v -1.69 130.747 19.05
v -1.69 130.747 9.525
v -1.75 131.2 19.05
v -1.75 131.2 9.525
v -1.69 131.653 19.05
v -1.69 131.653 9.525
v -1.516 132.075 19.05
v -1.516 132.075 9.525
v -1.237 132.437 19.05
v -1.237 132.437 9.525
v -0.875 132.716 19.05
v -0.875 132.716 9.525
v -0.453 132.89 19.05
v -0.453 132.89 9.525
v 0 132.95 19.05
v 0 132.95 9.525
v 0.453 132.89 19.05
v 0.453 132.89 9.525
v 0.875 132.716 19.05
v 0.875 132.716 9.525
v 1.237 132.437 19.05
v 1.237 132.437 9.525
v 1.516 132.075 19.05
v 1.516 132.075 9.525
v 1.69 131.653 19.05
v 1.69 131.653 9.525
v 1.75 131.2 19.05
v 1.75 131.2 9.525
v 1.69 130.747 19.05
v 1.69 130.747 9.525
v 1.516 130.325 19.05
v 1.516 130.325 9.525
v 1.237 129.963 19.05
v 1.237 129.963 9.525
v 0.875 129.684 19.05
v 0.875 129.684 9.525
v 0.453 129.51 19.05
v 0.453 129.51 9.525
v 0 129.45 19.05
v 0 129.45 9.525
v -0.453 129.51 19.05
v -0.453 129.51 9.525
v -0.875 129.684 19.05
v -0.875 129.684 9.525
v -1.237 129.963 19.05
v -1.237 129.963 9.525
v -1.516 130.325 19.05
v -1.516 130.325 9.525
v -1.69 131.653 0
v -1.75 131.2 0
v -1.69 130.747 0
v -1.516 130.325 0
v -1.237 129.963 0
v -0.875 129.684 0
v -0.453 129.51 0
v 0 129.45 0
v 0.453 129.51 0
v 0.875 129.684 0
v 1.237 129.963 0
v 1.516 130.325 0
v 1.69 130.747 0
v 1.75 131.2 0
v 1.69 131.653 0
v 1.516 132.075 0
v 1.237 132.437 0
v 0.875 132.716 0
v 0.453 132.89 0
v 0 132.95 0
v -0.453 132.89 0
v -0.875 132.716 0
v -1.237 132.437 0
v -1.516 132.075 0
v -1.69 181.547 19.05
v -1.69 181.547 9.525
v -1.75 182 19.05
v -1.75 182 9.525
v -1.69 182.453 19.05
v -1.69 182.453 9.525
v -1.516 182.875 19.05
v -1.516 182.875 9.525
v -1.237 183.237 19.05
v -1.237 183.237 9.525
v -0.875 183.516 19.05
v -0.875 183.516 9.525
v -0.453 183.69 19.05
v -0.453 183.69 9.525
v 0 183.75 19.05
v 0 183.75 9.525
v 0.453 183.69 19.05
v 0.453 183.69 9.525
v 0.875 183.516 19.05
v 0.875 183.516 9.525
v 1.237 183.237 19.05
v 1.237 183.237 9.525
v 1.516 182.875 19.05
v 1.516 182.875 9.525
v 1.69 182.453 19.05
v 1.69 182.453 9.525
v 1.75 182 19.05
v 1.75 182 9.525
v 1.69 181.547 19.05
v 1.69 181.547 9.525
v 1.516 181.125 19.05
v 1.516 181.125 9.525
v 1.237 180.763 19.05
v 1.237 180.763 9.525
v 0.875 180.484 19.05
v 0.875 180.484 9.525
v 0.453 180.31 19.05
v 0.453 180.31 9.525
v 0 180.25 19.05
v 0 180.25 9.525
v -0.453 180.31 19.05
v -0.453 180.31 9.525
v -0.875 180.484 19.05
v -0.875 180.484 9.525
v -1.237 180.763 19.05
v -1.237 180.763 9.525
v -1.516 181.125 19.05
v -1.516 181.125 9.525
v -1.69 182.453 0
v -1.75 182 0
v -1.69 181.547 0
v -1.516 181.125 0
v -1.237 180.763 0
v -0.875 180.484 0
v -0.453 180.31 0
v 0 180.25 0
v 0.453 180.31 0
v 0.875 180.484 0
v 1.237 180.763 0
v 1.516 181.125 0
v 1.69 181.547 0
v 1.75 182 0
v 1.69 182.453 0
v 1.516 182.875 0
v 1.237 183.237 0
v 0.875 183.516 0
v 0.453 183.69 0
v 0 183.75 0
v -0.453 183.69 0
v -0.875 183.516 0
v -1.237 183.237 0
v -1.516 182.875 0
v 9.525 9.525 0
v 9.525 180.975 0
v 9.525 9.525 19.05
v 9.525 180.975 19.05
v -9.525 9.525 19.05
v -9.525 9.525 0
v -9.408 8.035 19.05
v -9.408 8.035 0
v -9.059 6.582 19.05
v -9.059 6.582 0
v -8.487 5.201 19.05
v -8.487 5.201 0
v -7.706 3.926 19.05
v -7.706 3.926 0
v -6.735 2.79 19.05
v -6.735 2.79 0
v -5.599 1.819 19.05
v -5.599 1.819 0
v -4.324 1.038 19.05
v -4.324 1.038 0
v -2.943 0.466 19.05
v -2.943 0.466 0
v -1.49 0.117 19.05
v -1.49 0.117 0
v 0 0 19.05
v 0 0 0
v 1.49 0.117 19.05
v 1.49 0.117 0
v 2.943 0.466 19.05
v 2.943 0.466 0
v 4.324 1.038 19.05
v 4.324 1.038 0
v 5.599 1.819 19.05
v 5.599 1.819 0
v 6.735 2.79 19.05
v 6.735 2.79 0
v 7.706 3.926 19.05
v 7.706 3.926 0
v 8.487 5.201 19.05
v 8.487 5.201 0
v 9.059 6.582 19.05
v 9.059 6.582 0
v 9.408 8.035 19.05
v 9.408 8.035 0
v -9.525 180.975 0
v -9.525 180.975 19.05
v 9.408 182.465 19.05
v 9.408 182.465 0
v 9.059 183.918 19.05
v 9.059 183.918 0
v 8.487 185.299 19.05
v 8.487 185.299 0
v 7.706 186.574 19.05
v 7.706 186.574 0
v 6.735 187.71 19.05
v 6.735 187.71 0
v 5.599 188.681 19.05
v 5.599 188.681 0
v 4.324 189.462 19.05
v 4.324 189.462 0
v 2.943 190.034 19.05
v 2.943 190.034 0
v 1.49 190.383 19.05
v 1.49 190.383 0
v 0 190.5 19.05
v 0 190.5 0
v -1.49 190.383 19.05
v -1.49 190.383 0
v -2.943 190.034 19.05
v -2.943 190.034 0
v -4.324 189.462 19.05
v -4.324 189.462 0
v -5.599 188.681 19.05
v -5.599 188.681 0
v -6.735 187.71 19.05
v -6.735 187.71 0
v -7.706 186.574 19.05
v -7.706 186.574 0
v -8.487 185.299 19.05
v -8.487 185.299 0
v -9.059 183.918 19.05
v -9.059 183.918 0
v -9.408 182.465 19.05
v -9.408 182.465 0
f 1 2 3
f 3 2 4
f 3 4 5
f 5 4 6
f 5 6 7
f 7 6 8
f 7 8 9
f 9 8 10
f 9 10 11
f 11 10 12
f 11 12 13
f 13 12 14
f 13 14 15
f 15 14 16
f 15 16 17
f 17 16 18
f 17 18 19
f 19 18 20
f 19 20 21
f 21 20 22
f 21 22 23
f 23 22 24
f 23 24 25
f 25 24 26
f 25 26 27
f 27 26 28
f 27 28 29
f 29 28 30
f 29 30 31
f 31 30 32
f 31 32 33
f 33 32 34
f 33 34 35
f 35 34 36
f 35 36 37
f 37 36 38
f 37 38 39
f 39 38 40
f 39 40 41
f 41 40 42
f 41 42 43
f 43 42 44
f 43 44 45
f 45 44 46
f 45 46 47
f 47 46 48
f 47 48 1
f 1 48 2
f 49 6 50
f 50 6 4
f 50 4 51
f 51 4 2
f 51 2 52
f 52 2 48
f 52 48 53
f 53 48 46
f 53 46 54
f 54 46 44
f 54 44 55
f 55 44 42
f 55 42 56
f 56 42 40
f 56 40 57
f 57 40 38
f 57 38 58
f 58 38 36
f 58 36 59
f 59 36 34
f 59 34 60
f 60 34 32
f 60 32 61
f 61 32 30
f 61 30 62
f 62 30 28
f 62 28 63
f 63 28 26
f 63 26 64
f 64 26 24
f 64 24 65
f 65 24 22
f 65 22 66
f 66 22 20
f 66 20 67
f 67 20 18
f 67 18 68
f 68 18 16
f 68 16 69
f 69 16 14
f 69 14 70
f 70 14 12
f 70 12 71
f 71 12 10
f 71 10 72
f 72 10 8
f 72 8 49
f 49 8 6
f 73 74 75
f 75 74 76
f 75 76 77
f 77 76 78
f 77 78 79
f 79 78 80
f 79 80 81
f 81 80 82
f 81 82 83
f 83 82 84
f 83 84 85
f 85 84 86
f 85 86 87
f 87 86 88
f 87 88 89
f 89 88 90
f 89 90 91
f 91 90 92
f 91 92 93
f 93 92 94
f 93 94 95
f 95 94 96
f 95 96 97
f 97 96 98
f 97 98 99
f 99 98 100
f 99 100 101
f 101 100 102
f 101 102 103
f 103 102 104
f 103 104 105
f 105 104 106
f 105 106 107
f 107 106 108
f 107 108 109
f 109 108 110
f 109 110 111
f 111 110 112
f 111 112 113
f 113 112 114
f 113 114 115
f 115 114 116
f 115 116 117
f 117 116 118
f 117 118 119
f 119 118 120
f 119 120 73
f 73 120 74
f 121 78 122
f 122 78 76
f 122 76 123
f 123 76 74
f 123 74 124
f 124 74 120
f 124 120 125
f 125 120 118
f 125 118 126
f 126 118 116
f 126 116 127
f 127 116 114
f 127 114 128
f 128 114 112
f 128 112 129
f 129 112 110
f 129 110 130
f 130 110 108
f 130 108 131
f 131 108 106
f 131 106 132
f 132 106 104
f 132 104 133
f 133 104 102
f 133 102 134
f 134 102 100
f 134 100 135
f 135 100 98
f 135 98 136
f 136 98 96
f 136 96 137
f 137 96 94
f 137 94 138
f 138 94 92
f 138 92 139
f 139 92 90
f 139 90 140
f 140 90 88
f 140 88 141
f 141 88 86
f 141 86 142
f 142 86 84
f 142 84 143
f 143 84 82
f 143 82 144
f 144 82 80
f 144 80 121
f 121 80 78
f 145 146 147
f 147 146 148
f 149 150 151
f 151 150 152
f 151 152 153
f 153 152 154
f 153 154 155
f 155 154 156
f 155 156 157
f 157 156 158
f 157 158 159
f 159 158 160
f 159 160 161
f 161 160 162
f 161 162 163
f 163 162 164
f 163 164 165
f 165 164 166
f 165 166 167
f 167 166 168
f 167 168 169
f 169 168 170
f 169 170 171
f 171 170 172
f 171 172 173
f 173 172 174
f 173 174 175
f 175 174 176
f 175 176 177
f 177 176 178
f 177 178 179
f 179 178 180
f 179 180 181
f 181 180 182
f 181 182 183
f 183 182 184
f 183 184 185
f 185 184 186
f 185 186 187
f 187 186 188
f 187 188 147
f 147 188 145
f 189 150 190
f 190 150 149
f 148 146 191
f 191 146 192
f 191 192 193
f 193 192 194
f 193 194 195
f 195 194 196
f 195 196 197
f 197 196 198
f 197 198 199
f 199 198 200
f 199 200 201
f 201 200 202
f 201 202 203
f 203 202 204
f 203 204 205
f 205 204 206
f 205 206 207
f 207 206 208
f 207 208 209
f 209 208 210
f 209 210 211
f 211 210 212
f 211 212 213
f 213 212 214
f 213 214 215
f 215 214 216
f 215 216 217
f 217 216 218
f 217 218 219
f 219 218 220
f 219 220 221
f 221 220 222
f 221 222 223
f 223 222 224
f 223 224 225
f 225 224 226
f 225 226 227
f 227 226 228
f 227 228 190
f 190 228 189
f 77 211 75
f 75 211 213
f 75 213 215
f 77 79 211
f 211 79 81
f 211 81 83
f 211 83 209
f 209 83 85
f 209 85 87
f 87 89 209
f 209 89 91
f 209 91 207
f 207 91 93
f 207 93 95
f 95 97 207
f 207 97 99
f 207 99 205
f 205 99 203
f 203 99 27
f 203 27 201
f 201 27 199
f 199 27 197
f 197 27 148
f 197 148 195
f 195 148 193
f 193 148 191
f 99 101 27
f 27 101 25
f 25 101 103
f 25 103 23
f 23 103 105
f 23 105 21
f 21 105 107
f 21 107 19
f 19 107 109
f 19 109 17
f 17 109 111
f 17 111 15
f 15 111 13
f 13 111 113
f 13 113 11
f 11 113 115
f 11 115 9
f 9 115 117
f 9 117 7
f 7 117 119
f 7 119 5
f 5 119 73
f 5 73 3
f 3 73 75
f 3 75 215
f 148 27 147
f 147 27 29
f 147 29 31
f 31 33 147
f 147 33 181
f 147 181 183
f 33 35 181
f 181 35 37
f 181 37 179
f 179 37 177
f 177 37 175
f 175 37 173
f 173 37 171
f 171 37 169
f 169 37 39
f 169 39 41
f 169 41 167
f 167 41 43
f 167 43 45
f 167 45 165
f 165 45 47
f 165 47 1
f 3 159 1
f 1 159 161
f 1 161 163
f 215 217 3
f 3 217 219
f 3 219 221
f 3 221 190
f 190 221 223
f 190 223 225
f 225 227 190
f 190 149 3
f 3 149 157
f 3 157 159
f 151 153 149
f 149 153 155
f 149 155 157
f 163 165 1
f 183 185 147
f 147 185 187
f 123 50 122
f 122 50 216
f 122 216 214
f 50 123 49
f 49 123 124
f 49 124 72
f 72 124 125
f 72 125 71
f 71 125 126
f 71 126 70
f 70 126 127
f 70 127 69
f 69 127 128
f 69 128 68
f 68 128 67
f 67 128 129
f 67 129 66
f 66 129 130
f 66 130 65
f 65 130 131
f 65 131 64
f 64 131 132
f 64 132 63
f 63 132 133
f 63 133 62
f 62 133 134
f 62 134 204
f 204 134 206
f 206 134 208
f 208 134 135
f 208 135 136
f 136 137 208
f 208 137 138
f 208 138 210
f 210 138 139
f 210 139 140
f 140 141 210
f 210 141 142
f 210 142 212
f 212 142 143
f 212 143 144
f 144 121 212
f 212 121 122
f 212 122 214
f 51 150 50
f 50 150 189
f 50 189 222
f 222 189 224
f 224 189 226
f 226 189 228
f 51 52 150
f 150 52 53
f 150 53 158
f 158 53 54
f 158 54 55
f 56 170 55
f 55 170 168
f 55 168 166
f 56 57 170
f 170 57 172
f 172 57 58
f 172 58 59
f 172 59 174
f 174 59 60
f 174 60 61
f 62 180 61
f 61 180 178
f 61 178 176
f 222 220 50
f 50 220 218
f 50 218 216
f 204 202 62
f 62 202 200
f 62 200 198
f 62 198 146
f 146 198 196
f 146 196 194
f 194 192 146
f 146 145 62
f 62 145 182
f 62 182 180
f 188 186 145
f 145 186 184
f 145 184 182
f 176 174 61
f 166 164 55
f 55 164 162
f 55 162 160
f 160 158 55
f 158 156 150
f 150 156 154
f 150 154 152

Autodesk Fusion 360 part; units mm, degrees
sketch "Sketch1" plane through (0, 0, 0) normal (0, 0, 1) x (1, 0, 0)
  line L0 (0, 0) -> (0, 0)
  line L1 (9.525, 9.525) -> (9.525, 180.975)
  line L2 (0, 190.5) -> (0, 190.5)
  line L3 (-9.525, 180.975) -> (-9.525, 9.525)
  line L4 (0, 0) -> (0, 190.5) construction
  arc A0 (-9.525, 9.525) -> (0, 0) centre (0, 9.525) ccw
  arc A1 (0, 0) -> (9.525, 9.525) centre (0, 9.525) ccw
  arc A2 (0, 190.5) -> (-9.525, 180.975) centre (0, 180.975) ccw
  arc A3 (9.525, 180.975) -> (0, 190.5) centre (0, 180.975) ccw
  circle A4 centre (0, 182) radius 1.75
  circle A5 centre (0, 131.2) radius 1.75
  dimension "d1" = 190.5
  dimension "d2" = 19.05
  dimension "d3" = 9.525
  dimension "d4" = 9.525
  dimension "d5" = 9.525
  dimension "d6" = 9.525
  dimension "d7" = 3.5
  dimension "d8" = 3.5
  dimension "d9" = 50.8
extrude "Extrude1" add sketch "Sketch1" along normal blind 19.05
